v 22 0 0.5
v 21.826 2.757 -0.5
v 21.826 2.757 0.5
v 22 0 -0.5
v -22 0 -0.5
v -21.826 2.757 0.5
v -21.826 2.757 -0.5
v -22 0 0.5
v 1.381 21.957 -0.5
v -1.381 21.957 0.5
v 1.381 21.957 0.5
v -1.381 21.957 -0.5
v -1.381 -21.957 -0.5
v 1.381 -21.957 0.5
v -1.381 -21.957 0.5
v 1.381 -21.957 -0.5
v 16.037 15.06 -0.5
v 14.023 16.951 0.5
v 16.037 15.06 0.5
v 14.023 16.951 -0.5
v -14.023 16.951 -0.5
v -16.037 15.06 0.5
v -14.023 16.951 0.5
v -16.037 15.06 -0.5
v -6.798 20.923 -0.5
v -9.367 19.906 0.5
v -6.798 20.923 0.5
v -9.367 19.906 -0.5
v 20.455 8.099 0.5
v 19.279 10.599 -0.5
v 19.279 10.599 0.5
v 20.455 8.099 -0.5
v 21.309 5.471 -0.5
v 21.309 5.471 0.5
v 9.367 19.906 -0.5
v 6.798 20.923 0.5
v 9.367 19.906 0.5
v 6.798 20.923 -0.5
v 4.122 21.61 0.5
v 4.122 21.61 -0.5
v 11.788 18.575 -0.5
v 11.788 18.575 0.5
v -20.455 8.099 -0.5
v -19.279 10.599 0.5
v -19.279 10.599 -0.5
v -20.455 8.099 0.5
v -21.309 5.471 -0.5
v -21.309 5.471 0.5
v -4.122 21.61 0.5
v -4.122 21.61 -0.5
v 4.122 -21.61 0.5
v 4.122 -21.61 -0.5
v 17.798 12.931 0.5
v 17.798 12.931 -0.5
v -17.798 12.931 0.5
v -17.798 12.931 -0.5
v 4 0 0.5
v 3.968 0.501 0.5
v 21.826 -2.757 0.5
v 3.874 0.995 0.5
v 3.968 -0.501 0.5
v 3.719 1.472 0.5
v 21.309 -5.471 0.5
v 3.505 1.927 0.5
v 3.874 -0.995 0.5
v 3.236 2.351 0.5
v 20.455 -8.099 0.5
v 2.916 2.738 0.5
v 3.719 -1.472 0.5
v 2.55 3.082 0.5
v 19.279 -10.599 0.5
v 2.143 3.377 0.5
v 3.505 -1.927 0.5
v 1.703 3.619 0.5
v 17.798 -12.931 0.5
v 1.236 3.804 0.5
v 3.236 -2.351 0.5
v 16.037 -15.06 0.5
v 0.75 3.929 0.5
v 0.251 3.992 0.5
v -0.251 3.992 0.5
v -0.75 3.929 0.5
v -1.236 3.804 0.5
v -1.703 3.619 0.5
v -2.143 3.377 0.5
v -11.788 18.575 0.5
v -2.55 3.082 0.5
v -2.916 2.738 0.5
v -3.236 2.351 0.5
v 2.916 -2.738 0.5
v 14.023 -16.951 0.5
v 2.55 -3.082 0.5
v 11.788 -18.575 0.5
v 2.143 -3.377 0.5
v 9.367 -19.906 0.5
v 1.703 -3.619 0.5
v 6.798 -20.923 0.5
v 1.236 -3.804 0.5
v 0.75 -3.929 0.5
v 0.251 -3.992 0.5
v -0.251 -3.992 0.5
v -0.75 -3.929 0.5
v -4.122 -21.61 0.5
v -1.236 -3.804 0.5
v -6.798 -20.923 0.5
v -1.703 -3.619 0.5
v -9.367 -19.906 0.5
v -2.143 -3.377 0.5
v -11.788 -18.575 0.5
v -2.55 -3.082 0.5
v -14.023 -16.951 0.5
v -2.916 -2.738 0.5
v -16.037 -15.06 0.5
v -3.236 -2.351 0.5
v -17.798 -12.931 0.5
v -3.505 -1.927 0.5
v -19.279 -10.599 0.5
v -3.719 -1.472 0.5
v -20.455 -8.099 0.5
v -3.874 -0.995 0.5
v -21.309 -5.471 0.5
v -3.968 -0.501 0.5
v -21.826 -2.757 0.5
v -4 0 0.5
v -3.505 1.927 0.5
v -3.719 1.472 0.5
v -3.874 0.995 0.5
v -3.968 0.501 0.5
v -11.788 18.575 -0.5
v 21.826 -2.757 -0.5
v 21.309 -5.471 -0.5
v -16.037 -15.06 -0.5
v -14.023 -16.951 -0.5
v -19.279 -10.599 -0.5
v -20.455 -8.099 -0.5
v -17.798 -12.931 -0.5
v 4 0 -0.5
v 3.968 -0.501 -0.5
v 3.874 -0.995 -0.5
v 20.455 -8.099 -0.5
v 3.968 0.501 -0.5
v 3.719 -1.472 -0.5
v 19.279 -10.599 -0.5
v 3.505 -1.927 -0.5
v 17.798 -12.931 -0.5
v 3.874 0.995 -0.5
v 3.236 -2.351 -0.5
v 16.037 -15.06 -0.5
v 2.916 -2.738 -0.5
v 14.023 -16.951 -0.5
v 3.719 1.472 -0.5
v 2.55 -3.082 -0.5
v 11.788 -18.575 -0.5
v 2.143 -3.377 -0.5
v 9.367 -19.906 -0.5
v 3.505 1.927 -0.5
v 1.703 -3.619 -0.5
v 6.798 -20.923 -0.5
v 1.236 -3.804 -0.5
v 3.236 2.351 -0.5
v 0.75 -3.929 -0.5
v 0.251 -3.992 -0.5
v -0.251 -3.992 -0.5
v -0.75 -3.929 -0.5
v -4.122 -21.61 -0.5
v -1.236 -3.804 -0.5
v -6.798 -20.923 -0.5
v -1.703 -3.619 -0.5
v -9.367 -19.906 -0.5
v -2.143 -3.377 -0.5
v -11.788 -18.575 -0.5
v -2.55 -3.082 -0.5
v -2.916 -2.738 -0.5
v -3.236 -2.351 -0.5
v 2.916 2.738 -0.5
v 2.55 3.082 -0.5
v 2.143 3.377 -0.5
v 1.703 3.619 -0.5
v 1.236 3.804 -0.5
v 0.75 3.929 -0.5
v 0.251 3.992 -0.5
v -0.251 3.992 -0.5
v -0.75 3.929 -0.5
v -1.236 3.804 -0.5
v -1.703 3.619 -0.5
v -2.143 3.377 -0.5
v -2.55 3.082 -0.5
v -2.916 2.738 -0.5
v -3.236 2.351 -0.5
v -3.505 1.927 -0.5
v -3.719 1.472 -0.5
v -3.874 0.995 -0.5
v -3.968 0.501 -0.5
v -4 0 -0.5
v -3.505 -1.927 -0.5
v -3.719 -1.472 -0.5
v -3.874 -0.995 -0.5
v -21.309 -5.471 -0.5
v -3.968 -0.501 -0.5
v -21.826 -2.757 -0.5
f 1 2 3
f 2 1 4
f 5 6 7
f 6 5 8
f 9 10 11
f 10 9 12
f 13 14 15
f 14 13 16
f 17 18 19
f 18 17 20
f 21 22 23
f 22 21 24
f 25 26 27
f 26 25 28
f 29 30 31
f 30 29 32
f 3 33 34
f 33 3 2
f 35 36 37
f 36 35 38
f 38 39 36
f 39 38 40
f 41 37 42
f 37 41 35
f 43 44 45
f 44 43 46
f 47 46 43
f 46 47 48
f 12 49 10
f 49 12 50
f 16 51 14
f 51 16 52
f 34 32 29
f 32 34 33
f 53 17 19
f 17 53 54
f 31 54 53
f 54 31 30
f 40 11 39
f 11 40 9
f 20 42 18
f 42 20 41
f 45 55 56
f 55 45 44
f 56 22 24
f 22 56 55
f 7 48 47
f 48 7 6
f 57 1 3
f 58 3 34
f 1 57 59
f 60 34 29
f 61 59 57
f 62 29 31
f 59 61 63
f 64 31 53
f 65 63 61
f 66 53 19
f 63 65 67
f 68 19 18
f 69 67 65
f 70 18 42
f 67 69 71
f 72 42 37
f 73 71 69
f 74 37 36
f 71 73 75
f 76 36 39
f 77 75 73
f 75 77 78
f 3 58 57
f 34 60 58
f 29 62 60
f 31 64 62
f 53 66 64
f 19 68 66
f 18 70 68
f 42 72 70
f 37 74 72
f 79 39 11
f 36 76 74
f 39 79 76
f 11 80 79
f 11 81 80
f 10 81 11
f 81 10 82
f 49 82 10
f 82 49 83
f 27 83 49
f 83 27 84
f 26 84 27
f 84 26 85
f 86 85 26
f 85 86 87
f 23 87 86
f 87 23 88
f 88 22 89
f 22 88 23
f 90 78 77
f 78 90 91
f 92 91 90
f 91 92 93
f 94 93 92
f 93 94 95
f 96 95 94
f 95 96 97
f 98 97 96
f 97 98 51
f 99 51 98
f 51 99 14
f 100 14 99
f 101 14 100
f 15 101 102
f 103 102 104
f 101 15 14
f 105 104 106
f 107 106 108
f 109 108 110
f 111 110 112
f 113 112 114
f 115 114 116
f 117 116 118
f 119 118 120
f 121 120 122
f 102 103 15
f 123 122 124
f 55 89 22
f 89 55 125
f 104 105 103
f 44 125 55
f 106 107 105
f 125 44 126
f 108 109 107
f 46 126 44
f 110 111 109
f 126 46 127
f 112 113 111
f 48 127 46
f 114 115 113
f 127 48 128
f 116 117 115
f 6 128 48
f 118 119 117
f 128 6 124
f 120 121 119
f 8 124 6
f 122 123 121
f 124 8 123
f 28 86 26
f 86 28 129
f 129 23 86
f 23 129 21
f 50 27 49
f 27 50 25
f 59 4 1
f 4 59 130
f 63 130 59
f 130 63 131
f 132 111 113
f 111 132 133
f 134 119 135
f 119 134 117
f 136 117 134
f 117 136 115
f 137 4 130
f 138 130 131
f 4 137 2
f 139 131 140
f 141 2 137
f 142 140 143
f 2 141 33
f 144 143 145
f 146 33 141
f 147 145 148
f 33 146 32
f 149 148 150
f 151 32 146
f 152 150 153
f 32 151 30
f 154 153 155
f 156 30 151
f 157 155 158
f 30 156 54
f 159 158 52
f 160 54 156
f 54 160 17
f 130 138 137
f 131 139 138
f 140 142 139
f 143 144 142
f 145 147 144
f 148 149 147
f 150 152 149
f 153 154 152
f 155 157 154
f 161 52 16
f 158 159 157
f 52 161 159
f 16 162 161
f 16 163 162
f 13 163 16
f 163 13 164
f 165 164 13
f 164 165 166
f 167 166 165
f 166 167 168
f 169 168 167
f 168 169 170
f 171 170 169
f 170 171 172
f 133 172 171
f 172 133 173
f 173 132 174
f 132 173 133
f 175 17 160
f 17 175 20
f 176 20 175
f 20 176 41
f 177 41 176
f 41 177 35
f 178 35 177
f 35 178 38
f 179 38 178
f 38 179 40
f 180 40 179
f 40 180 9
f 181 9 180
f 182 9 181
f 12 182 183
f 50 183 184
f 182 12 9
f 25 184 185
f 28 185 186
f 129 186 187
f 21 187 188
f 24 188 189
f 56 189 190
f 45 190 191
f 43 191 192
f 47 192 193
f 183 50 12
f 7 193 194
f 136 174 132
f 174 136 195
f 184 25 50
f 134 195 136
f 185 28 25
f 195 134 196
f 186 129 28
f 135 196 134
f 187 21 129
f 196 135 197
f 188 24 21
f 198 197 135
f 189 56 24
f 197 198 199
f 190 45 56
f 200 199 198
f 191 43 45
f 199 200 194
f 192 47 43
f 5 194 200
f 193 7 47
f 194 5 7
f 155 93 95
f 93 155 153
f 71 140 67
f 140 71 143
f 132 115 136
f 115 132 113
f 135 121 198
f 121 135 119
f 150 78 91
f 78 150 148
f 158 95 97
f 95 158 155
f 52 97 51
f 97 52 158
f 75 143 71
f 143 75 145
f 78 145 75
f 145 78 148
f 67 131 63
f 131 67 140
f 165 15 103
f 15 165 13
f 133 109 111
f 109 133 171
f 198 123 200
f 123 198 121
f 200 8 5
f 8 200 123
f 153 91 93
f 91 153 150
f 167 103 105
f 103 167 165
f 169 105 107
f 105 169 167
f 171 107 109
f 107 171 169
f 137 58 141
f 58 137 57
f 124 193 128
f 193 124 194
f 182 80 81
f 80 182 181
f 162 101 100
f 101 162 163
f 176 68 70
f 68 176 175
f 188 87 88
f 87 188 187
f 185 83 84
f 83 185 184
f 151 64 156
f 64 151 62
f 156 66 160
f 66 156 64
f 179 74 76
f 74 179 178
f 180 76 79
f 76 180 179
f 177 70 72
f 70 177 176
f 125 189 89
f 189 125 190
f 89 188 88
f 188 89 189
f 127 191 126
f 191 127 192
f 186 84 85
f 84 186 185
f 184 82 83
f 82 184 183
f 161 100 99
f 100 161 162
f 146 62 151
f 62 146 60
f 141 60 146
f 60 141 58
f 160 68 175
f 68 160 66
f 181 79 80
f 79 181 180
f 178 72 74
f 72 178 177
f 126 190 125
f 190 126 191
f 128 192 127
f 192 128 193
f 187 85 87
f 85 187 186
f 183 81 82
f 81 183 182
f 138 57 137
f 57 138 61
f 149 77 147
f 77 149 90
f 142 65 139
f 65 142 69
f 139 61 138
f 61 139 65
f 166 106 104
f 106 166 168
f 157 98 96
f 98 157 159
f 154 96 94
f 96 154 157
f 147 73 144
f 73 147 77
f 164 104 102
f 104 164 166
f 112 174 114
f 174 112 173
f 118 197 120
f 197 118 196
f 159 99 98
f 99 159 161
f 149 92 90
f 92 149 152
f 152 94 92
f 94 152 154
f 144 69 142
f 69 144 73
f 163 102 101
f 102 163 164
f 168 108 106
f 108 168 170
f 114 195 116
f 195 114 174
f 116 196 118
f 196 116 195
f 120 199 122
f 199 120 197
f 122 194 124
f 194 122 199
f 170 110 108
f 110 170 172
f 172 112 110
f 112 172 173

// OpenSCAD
$fn = 50;


difference() {
	union() {
		translate(v = [0, 0, -0.5000000000]) {
			cylinder(h = 1, r = 22.0000000000);
		}
	}
	union() {
		translate(v = [0, 0, -100.0000000000]) {
			cylinder(h = 200, r = 4);
		}
	}
}
